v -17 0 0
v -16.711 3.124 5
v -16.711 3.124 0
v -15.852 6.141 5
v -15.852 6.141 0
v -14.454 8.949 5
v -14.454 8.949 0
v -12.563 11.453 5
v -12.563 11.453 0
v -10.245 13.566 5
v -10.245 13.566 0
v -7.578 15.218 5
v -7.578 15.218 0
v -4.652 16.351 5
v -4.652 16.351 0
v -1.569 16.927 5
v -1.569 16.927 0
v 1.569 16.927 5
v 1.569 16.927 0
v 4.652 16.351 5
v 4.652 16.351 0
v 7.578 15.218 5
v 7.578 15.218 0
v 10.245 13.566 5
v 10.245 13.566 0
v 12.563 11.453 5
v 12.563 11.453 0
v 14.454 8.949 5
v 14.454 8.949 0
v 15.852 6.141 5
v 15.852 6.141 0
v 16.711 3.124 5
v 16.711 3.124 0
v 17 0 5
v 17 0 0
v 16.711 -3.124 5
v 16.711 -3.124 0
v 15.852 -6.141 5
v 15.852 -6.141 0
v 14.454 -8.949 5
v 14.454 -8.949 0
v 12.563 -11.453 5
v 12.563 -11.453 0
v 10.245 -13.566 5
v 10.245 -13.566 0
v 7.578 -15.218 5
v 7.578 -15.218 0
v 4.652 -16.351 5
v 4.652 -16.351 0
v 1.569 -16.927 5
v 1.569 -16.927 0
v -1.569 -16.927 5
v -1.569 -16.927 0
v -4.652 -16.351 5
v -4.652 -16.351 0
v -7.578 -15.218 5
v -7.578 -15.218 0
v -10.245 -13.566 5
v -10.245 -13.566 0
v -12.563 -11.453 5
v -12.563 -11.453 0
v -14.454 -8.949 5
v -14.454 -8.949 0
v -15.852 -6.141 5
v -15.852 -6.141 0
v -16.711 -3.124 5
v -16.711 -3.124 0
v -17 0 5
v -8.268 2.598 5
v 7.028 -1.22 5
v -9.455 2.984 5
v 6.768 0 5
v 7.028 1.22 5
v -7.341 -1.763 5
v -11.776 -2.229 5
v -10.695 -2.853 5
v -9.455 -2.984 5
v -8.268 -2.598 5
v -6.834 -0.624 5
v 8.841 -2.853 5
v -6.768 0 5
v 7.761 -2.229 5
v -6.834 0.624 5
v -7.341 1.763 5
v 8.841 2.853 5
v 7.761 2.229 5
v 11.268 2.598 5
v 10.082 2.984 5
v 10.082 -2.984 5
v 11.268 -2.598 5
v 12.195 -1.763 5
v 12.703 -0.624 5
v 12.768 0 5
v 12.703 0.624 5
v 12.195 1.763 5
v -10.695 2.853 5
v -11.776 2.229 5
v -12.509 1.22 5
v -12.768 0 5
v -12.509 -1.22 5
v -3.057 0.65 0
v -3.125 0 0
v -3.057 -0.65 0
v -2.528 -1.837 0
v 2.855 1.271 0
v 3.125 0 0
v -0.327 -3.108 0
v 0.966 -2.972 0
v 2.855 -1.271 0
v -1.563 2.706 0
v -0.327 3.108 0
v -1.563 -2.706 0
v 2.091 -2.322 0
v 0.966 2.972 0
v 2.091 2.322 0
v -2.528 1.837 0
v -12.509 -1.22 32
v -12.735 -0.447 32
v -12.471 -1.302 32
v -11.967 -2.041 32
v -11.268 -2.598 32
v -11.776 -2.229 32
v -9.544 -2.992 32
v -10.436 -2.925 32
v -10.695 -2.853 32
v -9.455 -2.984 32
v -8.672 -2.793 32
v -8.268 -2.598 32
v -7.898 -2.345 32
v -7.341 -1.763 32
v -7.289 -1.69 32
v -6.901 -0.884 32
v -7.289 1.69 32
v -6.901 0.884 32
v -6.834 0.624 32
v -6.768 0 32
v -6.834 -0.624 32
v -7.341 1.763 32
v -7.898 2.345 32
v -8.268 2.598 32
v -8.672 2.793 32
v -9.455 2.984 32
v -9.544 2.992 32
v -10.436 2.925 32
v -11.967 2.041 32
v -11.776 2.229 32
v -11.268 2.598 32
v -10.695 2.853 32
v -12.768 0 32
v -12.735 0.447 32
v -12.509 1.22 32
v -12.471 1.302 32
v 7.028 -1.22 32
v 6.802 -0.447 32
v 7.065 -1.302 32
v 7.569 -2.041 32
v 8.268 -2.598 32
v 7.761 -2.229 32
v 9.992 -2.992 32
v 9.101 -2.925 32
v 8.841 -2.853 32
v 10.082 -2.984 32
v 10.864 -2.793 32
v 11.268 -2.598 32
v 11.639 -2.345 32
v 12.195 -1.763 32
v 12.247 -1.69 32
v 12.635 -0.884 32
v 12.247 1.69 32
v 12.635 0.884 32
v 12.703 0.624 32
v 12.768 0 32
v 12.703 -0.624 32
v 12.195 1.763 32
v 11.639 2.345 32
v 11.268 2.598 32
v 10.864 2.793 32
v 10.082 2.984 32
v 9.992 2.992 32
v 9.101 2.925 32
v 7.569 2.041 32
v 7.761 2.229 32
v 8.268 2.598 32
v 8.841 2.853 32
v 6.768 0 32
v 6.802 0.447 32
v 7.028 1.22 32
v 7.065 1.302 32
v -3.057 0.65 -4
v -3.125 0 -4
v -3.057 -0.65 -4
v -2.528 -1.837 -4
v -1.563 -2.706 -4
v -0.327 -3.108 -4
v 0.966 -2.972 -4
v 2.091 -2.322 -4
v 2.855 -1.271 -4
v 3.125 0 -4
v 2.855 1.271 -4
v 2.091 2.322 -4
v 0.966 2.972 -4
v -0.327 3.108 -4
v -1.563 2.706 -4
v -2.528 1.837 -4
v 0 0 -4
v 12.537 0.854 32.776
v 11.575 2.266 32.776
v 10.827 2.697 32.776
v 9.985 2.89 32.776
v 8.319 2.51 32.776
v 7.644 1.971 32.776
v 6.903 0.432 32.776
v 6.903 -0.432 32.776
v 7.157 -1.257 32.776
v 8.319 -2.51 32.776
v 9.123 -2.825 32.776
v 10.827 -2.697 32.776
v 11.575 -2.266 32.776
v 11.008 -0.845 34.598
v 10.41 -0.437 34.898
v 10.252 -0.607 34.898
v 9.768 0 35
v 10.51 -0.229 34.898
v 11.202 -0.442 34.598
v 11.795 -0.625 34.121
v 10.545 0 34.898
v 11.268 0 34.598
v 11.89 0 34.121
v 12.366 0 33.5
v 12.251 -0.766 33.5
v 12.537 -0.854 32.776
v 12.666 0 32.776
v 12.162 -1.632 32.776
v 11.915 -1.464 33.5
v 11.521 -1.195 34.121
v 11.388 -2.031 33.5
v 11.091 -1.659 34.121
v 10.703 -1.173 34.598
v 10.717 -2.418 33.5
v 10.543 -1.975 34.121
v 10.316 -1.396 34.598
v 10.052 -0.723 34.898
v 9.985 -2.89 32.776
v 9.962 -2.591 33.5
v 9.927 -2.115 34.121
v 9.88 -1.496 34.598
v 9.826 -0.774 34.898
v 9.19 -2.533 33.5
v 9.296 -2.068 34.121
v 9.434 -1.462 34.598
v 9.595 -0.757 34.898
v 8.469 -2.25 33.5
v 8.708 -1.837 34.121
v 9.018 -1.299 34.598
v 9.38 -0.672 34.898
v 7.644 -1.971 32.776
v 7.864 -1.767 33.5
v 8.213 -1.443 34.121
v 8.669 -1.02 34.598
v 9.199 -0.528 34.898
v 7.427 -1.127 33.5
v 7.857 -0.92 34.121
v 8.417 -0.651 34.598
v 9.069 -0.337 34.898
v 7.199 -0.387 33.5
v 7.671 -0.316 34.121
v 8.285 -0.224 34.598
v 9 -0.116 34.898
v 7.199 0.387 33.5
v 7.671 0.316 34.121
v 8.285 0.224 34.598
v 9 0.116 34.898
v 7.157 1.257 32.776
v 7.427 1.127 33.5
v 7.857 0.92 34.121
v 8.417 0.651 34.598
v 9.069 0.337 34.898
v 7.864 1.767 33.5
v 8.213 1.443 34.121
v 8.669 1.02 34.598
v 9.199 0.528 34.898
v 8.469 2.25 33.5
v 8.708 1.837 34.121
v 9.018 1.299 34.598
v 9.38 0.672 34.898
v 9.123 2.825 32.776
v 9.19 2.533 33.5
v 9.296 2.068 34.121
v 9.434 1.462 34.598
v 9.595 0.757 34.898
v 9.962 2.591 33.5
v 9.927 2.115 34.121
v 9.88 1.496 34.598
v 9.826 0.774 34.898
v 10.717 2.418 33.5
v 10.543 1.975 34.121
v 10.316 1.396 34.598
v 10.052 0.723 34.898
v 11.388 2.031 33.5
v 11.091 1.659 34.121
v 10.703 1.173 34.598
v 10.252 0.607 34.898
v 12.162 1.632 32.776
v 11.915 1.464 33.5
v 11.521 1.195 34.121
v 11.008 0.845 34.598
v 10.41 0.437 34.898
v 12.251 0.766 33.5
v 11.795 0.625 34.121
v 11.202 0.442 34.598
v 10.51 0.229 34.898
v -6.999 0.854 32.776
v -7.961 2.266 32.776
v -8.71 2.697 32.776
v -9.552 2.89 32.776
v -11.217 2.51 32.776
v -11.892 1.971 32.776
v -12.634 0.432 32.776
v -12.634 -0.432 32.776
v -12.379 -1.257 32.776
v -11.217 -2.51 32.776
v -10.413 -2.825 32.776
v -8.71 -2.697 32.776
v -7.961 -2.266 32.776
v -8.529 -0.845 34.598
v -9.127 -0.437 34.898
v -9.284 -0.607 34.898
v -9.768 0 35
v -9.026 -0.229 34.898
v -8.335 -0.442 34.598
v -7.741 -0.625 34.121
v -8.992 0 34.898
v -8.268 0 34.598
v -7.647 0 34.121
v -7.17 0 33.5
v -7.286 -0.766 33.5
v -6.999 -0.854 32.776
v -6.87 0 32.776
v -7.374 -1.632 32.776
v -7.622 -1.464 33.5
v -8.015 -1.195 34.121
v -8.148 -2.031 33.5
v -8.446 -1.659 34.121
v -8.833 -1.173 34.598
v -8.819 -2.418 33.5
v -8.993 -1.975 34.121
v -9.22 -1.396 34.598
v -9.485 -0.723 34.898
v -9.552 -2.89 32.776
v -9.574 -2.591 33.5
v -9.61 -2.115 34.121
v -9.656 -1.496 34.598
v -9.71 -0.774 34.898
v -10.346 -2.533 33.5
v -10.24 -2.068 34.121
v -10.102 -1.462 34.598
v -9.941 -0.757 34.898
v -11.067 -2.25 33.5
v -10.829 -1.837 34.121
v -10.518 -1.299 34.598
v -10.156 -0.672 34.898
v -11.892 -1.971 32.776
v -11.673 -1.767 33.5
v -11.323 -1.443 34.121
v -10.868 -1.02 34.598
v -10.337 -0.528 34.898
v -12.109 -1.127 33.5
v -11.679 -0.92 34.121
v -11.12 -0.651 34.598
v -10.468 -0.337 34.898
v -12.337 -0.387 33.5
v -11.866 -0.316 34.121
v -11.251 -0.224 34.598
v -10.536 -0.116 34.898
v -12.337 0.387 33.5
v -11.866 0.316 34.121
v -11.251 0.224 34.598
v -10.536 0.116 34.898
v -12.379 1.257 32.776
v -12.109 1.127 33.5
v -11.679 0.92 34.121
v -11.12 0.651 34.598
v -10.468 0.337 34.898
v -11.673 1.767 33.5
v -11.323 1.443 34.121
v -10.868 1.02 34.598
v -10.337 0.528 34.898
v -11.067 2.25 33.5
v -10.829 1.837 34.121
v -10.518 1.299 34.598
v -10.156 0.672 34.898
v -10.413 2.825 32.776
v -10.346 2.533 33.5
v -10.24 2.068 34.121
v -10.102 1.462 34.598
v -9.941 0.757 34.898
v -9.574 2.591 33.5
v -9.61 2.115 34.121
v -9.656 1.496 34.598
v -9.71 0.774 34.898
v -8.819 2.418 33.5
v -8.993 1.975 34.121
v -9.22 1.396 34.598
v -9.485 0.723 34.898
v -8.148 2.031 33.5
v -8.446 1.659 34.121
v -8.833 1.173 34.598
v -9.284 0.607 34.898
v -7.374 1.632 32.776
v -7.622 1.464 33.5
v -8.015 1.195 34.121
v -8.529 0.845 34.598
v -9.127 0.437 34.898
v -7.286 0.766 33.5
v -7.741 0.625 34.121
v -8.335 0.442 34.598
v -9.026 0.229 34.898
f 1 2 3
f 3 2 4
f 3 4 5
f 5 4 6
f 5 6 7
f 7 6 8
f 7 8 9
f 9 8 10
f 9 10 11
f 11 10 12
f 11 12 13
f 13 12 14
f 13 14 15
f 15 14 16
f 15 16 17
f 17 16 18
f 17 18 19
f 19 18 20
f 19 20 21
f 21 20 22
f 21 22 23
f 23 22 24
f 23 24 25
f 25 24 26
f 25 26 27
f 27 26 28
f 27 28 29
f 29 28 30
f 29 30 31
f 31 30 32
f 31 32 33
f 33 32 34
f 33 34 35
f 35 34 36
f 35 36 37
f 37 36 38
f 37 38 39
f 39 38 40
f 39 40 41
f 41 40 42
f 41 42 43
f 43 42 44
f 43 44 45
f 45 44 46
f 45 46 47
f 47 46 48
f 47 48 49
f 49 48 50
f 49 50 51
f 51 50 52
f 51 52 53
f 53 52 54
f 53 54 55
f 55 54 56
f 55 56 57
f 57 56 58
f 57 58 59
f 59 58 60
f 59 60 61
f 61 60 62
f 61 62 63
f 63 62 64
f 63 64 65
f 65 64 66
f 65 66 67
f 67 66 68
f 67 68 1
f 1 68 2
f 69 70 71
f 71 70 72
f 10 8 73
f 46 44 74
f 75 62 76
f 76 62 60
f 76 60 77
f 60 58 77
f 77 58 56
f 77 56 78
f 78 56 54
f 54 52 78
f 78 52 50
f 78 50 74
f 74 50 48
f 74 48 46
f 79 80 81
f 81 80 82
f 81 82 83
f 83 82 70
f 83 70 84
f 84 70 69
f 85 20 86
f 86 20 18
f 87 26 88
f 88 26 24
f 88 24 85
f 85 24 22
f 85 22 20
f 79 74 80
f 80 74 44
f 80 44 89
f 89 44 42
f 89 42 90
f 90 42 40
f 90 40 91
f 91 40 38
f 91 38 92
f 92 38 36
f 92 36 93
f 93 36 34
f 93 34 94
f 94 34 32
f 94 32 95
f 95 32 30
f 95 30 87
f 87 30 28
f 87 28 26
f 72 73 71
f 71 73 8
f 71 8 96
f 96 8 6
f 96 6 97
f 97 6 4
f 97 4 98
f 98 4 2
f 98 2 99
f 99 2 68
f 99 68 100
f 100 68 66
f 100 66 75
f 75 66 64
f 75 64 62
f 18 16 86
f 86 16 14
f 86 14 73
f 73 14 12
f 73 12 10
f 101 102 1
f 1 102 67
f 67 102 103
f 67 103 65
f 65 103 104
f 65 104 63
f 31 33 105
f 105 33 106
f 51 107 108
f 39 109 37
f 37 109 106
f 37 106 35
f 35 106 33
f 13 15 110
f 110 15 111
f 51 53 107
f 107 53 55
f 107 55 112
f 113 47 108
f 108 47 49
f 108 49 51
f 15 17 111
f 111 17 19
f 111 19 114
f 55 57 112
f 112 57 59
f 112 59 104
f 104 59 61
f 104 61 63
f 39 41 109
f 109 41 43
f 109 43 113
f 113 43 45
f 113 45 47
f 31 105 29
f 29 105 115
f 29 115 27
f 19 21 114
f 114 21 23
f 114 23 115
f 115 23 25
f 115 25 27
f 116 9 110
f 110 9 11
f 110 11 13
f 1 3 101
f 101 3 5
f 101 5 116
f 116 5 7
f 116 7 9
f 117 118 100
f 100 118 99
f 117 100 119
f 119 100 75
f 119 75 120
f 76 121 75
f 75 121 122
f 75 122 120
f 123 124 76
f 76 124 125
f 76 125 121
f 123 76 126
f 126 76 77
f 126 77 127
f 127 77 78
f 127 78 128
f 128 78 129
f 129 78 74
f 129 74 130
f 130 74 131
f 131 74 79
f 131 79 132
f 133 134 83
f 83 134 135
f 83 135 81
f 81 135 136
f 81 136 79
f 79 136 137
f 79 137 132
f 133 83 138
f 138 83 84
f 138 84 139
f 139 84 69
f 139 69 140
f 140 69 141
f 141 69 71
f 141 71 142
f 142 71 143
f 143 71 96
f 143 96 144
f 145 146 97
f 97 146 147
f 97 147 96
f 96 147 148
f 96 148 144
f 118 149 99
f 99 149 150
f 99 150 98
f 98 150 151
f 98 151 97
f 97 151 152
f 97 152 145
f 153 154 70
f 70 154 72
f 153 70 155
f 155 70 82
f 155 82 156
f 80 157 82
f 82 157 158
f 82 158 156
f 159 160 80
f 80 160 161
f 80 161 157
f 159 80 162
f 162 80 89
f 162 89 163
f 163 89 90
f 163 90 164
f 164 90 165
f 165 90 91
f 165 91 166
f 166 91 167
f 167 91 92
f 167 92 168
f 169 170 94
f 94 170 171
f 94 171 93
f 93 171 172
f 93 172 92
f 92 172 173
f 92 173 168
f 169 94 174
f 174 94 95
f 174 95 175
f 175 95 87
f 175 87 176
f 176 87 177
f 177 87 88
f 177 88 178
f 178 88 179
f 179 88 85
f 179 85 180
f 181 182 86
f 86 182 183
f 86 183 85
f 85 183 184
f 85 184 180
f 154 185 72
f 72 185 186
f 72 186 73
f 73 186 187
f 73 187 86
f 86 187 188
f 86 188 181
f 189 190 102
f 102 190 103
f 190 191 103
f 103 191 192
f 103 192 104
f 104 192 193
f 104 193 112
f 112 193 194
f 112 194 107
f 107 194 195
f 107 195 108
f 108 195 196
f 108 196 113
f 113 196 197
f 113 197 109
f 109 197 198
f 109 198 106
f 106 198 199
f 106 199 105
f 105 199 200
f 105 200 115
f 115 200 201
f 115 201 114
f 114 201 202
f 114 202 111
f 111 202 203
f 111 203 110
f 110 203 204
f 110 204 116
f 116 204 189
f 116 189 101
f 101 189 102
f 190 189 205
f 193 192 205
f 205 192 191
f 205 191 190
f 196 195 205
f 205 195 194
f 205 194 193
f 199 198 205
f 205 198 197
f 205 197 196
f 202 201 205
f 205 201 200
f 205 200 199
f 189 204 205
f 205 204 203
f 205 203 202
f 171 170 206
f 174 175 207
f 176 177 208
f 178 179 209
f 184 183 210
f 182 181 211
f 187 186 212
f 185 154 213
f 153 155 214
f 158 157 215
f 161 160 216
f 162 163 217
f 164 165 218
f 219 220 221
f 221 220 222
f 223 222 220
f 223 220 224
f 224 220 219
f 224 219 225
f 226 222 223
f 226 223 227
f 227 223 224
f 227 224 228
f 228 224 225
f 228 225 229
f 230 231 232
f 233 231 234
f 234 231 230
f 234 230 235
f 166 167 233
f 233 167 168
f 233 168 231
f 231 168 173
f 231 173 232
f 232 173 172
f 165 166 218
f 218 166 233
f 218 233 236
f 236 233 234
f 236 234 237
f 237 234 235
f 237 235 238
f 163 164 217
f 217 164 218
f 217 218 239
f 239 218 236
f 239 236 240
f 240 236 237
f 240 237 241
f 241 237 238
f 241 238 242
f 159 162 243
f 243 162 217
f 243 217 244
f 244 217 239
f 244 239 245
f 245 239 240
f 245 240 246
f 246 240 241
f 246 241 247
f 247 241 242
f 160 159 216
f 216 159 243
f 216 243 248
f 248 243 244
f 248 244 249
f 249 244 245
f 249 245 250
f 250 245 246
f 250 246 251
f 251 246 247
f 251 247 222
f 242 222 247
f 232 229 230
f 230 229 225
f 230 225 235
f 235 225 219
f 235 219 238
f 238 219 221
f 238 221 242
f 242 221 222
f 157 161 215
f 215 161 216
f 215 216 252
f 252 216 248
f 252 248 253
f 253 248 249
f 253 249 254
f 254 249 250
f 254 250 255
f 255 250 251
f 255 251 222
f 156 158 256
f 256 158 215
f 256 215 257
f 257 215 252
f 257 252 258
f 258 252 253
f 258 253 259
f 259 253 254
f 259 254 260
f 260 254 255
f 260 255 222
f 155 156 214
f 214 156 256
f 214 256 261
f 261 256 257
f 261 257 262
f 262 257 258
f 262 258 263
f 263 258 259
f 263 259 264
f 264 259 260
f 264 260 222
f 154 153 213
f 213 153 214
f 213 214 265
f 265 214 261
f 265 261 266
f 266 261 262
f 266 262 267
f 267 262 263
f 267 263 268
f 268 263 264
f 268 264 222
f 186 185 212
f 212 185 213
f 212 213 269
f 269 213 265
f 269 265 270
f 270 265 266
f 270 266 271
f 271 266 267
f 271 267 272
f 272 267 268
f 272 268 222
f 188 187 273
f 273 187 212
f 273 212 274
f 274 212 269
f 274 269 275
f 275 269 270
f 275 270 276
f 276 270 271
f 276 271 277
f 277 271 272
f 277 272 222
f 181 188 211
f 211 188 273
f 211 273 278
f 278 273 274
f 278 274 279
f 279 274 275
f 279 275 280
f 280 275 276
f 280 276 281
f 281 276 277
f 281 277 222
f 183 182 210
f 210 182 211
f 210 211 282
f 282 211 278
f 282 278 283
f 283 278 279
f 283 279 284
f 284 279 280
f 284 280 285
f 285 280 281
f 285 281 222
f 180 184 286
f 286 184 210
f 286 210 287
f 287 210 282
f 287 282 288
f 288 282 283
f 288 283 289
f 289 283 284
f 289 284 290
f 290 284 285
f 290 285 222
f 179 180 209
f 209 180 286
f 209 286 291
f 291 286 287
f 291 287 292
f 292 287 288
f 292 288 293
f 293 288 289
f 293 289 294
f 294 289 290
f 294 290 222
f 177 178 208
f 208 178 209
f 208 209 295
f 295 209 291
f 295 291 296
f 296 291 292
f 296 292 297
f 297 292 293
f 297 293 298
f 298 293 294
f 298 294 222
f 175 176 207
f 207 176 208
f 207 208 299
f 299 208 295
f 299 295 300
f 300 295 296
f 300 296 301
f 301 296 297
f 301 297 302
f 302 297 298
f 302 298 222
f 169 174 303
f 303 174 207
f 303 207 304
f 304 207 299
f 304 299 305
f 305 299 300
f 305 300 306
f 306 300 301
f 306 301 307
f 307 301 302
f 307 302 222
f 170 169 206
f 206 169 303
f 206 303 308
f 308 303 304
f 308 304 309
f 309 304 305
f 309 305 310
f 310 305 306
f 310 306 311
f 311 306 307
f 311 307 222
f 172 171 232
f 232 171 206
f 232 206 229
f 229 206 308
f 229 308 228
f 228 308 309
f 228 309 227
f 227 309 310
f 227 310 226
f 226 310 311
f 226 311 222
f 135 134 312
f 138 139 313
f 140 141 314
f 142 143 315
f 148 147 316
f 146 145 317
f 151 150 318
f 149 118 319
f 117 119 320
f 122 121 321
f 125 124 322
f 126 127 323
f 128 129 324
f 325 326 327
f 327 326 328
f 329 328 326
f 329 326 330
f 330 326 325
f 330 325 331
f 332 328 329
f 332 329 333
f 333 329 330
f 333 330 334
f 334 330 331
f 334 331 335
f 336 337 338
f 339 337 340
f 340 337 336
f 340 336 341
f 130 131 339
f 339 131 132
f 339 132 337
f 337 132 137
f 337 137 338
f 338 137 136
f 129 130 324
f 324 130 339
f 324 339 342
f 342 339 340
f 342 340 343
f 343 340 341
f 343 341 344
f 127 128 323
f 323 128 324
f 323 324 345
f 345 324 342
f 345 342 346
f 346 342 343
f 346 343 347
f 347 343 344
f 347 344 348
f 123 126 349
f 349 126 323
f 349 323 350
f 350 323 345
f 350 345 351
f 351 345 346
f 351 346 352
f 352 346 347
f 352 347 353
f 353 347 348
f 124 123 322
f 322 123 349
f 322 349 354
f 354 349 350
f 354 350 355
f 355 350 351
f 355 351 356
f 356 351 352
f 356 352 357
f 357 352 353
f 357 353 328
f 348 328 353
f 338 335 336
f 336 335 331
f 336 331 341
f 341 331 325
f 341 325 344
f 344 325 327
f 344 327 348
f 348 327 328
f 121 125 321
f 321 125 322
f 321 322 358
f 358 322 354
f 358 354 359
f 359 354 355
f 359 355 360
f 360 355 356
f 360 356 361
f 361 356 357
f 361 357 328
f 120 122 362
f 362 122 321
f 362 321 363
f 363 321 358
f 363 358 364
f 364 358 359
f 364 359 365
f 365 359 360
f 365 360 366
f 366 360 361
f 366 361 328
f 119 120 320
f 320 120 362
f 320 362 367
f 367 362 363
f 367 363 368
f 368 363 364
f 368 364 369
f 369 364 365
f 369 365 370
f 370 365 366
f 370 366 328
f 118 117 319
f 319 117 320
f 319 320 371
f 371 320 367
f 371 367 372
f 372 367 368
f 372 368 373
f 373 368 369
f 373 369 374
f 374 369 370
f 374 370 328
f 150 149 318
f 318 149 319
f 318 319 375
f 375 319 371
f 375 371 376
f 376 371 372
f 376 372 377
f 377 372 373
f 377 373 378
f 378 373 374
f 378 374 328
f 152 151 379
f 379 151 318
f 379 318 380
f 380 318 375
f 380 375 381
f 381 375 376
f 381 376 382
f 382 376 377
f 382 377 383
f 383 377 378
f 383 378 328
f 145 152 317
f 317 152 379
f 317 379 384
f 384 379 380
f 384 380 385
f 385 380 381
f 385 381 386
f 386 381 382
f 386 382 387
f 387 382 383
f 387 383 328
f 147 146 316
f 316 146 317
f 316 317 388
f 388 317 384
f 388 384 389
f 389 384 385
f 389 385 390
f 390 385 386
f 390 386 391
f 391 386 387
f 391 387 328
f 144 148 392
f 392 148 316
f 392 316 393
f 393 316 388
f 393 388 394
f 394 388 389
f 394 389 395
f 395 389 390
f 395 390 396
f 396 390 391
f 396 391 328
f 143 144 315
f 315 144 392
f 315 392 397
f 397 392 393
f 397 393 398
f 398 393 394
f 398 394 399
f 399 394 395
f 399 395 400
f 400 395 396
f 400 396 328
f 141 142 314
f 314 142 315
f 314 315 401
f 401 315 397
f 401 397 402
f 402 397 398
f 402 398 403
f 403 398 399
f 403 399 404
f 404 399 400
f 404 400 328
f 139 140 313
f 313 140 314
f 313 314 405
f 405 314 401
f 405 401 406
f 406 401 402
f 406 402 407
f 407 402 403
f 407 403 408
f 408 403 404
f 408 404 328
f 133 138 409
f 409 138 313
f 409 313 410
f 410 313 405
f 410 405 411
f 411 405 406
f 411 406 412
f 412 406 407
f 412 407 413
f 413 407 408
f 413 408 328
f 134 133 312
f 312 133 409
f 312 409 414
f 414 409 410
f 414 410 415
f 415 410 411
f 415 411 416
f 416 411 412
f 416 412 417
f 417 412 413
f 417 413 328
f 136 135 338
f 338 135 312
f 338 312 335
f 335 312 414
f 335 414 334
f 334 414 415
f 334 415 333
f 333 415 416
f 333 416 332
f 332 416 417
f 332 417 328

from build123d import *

# Parameters (mm, degrees)
SKETCH1_R           = 17
BOSS_EXTRUDE1_DEPTH = 5
SKETCH2_R           = 3
BOSS_EXTRUDE2_DEPTH = 30
SKETCH3_R           = 3.125
BOSS_EXTRUDE3_DEPTH = 4
FILLET1_R           = 3


with BuildPart() as part:
    # Sketch1 → Boss-Extrude1 (new body)
    with BuildSketch(Plane.XY):
        Circle(SKETCH1_R)
    extrude(amount=BOSS_EXTRUDE1_DEPTH)

    # Sketch2 → Boss-Extrude2 (add)
    with BuildSketch(Plane.XY.offset(5)):
        with Locations((-9.768207719, 0)):
            Circle(SKETCH2_R)
        with Locations((9.768207719, 0)):
            Circle(SKETCH2_R)
    extrude(amount=BOSS_EXTRUDE2_DEPTH)

    # Sketch3 → Boss-Extrude3 (add)
    with BuildSketch(Plane(origin=(0, 0, 0), x_dir=(-1, 0, 0), z_dir=(0, 0, -1))):
        Circle(SKETCH3_R)
    extrude(amount=BOSS_EXTRUDE3_DEPTH)

    # Fillet1
    fillet1_edges = [part.edges().sort_by_distance(p)[0] for p in [
        (-12.768207719, 0, 35),
        (6.768207719, 0, 35),
    ]]
    fillet(fillet1_edges, radius=FILLET1_R)


solid = part.part
